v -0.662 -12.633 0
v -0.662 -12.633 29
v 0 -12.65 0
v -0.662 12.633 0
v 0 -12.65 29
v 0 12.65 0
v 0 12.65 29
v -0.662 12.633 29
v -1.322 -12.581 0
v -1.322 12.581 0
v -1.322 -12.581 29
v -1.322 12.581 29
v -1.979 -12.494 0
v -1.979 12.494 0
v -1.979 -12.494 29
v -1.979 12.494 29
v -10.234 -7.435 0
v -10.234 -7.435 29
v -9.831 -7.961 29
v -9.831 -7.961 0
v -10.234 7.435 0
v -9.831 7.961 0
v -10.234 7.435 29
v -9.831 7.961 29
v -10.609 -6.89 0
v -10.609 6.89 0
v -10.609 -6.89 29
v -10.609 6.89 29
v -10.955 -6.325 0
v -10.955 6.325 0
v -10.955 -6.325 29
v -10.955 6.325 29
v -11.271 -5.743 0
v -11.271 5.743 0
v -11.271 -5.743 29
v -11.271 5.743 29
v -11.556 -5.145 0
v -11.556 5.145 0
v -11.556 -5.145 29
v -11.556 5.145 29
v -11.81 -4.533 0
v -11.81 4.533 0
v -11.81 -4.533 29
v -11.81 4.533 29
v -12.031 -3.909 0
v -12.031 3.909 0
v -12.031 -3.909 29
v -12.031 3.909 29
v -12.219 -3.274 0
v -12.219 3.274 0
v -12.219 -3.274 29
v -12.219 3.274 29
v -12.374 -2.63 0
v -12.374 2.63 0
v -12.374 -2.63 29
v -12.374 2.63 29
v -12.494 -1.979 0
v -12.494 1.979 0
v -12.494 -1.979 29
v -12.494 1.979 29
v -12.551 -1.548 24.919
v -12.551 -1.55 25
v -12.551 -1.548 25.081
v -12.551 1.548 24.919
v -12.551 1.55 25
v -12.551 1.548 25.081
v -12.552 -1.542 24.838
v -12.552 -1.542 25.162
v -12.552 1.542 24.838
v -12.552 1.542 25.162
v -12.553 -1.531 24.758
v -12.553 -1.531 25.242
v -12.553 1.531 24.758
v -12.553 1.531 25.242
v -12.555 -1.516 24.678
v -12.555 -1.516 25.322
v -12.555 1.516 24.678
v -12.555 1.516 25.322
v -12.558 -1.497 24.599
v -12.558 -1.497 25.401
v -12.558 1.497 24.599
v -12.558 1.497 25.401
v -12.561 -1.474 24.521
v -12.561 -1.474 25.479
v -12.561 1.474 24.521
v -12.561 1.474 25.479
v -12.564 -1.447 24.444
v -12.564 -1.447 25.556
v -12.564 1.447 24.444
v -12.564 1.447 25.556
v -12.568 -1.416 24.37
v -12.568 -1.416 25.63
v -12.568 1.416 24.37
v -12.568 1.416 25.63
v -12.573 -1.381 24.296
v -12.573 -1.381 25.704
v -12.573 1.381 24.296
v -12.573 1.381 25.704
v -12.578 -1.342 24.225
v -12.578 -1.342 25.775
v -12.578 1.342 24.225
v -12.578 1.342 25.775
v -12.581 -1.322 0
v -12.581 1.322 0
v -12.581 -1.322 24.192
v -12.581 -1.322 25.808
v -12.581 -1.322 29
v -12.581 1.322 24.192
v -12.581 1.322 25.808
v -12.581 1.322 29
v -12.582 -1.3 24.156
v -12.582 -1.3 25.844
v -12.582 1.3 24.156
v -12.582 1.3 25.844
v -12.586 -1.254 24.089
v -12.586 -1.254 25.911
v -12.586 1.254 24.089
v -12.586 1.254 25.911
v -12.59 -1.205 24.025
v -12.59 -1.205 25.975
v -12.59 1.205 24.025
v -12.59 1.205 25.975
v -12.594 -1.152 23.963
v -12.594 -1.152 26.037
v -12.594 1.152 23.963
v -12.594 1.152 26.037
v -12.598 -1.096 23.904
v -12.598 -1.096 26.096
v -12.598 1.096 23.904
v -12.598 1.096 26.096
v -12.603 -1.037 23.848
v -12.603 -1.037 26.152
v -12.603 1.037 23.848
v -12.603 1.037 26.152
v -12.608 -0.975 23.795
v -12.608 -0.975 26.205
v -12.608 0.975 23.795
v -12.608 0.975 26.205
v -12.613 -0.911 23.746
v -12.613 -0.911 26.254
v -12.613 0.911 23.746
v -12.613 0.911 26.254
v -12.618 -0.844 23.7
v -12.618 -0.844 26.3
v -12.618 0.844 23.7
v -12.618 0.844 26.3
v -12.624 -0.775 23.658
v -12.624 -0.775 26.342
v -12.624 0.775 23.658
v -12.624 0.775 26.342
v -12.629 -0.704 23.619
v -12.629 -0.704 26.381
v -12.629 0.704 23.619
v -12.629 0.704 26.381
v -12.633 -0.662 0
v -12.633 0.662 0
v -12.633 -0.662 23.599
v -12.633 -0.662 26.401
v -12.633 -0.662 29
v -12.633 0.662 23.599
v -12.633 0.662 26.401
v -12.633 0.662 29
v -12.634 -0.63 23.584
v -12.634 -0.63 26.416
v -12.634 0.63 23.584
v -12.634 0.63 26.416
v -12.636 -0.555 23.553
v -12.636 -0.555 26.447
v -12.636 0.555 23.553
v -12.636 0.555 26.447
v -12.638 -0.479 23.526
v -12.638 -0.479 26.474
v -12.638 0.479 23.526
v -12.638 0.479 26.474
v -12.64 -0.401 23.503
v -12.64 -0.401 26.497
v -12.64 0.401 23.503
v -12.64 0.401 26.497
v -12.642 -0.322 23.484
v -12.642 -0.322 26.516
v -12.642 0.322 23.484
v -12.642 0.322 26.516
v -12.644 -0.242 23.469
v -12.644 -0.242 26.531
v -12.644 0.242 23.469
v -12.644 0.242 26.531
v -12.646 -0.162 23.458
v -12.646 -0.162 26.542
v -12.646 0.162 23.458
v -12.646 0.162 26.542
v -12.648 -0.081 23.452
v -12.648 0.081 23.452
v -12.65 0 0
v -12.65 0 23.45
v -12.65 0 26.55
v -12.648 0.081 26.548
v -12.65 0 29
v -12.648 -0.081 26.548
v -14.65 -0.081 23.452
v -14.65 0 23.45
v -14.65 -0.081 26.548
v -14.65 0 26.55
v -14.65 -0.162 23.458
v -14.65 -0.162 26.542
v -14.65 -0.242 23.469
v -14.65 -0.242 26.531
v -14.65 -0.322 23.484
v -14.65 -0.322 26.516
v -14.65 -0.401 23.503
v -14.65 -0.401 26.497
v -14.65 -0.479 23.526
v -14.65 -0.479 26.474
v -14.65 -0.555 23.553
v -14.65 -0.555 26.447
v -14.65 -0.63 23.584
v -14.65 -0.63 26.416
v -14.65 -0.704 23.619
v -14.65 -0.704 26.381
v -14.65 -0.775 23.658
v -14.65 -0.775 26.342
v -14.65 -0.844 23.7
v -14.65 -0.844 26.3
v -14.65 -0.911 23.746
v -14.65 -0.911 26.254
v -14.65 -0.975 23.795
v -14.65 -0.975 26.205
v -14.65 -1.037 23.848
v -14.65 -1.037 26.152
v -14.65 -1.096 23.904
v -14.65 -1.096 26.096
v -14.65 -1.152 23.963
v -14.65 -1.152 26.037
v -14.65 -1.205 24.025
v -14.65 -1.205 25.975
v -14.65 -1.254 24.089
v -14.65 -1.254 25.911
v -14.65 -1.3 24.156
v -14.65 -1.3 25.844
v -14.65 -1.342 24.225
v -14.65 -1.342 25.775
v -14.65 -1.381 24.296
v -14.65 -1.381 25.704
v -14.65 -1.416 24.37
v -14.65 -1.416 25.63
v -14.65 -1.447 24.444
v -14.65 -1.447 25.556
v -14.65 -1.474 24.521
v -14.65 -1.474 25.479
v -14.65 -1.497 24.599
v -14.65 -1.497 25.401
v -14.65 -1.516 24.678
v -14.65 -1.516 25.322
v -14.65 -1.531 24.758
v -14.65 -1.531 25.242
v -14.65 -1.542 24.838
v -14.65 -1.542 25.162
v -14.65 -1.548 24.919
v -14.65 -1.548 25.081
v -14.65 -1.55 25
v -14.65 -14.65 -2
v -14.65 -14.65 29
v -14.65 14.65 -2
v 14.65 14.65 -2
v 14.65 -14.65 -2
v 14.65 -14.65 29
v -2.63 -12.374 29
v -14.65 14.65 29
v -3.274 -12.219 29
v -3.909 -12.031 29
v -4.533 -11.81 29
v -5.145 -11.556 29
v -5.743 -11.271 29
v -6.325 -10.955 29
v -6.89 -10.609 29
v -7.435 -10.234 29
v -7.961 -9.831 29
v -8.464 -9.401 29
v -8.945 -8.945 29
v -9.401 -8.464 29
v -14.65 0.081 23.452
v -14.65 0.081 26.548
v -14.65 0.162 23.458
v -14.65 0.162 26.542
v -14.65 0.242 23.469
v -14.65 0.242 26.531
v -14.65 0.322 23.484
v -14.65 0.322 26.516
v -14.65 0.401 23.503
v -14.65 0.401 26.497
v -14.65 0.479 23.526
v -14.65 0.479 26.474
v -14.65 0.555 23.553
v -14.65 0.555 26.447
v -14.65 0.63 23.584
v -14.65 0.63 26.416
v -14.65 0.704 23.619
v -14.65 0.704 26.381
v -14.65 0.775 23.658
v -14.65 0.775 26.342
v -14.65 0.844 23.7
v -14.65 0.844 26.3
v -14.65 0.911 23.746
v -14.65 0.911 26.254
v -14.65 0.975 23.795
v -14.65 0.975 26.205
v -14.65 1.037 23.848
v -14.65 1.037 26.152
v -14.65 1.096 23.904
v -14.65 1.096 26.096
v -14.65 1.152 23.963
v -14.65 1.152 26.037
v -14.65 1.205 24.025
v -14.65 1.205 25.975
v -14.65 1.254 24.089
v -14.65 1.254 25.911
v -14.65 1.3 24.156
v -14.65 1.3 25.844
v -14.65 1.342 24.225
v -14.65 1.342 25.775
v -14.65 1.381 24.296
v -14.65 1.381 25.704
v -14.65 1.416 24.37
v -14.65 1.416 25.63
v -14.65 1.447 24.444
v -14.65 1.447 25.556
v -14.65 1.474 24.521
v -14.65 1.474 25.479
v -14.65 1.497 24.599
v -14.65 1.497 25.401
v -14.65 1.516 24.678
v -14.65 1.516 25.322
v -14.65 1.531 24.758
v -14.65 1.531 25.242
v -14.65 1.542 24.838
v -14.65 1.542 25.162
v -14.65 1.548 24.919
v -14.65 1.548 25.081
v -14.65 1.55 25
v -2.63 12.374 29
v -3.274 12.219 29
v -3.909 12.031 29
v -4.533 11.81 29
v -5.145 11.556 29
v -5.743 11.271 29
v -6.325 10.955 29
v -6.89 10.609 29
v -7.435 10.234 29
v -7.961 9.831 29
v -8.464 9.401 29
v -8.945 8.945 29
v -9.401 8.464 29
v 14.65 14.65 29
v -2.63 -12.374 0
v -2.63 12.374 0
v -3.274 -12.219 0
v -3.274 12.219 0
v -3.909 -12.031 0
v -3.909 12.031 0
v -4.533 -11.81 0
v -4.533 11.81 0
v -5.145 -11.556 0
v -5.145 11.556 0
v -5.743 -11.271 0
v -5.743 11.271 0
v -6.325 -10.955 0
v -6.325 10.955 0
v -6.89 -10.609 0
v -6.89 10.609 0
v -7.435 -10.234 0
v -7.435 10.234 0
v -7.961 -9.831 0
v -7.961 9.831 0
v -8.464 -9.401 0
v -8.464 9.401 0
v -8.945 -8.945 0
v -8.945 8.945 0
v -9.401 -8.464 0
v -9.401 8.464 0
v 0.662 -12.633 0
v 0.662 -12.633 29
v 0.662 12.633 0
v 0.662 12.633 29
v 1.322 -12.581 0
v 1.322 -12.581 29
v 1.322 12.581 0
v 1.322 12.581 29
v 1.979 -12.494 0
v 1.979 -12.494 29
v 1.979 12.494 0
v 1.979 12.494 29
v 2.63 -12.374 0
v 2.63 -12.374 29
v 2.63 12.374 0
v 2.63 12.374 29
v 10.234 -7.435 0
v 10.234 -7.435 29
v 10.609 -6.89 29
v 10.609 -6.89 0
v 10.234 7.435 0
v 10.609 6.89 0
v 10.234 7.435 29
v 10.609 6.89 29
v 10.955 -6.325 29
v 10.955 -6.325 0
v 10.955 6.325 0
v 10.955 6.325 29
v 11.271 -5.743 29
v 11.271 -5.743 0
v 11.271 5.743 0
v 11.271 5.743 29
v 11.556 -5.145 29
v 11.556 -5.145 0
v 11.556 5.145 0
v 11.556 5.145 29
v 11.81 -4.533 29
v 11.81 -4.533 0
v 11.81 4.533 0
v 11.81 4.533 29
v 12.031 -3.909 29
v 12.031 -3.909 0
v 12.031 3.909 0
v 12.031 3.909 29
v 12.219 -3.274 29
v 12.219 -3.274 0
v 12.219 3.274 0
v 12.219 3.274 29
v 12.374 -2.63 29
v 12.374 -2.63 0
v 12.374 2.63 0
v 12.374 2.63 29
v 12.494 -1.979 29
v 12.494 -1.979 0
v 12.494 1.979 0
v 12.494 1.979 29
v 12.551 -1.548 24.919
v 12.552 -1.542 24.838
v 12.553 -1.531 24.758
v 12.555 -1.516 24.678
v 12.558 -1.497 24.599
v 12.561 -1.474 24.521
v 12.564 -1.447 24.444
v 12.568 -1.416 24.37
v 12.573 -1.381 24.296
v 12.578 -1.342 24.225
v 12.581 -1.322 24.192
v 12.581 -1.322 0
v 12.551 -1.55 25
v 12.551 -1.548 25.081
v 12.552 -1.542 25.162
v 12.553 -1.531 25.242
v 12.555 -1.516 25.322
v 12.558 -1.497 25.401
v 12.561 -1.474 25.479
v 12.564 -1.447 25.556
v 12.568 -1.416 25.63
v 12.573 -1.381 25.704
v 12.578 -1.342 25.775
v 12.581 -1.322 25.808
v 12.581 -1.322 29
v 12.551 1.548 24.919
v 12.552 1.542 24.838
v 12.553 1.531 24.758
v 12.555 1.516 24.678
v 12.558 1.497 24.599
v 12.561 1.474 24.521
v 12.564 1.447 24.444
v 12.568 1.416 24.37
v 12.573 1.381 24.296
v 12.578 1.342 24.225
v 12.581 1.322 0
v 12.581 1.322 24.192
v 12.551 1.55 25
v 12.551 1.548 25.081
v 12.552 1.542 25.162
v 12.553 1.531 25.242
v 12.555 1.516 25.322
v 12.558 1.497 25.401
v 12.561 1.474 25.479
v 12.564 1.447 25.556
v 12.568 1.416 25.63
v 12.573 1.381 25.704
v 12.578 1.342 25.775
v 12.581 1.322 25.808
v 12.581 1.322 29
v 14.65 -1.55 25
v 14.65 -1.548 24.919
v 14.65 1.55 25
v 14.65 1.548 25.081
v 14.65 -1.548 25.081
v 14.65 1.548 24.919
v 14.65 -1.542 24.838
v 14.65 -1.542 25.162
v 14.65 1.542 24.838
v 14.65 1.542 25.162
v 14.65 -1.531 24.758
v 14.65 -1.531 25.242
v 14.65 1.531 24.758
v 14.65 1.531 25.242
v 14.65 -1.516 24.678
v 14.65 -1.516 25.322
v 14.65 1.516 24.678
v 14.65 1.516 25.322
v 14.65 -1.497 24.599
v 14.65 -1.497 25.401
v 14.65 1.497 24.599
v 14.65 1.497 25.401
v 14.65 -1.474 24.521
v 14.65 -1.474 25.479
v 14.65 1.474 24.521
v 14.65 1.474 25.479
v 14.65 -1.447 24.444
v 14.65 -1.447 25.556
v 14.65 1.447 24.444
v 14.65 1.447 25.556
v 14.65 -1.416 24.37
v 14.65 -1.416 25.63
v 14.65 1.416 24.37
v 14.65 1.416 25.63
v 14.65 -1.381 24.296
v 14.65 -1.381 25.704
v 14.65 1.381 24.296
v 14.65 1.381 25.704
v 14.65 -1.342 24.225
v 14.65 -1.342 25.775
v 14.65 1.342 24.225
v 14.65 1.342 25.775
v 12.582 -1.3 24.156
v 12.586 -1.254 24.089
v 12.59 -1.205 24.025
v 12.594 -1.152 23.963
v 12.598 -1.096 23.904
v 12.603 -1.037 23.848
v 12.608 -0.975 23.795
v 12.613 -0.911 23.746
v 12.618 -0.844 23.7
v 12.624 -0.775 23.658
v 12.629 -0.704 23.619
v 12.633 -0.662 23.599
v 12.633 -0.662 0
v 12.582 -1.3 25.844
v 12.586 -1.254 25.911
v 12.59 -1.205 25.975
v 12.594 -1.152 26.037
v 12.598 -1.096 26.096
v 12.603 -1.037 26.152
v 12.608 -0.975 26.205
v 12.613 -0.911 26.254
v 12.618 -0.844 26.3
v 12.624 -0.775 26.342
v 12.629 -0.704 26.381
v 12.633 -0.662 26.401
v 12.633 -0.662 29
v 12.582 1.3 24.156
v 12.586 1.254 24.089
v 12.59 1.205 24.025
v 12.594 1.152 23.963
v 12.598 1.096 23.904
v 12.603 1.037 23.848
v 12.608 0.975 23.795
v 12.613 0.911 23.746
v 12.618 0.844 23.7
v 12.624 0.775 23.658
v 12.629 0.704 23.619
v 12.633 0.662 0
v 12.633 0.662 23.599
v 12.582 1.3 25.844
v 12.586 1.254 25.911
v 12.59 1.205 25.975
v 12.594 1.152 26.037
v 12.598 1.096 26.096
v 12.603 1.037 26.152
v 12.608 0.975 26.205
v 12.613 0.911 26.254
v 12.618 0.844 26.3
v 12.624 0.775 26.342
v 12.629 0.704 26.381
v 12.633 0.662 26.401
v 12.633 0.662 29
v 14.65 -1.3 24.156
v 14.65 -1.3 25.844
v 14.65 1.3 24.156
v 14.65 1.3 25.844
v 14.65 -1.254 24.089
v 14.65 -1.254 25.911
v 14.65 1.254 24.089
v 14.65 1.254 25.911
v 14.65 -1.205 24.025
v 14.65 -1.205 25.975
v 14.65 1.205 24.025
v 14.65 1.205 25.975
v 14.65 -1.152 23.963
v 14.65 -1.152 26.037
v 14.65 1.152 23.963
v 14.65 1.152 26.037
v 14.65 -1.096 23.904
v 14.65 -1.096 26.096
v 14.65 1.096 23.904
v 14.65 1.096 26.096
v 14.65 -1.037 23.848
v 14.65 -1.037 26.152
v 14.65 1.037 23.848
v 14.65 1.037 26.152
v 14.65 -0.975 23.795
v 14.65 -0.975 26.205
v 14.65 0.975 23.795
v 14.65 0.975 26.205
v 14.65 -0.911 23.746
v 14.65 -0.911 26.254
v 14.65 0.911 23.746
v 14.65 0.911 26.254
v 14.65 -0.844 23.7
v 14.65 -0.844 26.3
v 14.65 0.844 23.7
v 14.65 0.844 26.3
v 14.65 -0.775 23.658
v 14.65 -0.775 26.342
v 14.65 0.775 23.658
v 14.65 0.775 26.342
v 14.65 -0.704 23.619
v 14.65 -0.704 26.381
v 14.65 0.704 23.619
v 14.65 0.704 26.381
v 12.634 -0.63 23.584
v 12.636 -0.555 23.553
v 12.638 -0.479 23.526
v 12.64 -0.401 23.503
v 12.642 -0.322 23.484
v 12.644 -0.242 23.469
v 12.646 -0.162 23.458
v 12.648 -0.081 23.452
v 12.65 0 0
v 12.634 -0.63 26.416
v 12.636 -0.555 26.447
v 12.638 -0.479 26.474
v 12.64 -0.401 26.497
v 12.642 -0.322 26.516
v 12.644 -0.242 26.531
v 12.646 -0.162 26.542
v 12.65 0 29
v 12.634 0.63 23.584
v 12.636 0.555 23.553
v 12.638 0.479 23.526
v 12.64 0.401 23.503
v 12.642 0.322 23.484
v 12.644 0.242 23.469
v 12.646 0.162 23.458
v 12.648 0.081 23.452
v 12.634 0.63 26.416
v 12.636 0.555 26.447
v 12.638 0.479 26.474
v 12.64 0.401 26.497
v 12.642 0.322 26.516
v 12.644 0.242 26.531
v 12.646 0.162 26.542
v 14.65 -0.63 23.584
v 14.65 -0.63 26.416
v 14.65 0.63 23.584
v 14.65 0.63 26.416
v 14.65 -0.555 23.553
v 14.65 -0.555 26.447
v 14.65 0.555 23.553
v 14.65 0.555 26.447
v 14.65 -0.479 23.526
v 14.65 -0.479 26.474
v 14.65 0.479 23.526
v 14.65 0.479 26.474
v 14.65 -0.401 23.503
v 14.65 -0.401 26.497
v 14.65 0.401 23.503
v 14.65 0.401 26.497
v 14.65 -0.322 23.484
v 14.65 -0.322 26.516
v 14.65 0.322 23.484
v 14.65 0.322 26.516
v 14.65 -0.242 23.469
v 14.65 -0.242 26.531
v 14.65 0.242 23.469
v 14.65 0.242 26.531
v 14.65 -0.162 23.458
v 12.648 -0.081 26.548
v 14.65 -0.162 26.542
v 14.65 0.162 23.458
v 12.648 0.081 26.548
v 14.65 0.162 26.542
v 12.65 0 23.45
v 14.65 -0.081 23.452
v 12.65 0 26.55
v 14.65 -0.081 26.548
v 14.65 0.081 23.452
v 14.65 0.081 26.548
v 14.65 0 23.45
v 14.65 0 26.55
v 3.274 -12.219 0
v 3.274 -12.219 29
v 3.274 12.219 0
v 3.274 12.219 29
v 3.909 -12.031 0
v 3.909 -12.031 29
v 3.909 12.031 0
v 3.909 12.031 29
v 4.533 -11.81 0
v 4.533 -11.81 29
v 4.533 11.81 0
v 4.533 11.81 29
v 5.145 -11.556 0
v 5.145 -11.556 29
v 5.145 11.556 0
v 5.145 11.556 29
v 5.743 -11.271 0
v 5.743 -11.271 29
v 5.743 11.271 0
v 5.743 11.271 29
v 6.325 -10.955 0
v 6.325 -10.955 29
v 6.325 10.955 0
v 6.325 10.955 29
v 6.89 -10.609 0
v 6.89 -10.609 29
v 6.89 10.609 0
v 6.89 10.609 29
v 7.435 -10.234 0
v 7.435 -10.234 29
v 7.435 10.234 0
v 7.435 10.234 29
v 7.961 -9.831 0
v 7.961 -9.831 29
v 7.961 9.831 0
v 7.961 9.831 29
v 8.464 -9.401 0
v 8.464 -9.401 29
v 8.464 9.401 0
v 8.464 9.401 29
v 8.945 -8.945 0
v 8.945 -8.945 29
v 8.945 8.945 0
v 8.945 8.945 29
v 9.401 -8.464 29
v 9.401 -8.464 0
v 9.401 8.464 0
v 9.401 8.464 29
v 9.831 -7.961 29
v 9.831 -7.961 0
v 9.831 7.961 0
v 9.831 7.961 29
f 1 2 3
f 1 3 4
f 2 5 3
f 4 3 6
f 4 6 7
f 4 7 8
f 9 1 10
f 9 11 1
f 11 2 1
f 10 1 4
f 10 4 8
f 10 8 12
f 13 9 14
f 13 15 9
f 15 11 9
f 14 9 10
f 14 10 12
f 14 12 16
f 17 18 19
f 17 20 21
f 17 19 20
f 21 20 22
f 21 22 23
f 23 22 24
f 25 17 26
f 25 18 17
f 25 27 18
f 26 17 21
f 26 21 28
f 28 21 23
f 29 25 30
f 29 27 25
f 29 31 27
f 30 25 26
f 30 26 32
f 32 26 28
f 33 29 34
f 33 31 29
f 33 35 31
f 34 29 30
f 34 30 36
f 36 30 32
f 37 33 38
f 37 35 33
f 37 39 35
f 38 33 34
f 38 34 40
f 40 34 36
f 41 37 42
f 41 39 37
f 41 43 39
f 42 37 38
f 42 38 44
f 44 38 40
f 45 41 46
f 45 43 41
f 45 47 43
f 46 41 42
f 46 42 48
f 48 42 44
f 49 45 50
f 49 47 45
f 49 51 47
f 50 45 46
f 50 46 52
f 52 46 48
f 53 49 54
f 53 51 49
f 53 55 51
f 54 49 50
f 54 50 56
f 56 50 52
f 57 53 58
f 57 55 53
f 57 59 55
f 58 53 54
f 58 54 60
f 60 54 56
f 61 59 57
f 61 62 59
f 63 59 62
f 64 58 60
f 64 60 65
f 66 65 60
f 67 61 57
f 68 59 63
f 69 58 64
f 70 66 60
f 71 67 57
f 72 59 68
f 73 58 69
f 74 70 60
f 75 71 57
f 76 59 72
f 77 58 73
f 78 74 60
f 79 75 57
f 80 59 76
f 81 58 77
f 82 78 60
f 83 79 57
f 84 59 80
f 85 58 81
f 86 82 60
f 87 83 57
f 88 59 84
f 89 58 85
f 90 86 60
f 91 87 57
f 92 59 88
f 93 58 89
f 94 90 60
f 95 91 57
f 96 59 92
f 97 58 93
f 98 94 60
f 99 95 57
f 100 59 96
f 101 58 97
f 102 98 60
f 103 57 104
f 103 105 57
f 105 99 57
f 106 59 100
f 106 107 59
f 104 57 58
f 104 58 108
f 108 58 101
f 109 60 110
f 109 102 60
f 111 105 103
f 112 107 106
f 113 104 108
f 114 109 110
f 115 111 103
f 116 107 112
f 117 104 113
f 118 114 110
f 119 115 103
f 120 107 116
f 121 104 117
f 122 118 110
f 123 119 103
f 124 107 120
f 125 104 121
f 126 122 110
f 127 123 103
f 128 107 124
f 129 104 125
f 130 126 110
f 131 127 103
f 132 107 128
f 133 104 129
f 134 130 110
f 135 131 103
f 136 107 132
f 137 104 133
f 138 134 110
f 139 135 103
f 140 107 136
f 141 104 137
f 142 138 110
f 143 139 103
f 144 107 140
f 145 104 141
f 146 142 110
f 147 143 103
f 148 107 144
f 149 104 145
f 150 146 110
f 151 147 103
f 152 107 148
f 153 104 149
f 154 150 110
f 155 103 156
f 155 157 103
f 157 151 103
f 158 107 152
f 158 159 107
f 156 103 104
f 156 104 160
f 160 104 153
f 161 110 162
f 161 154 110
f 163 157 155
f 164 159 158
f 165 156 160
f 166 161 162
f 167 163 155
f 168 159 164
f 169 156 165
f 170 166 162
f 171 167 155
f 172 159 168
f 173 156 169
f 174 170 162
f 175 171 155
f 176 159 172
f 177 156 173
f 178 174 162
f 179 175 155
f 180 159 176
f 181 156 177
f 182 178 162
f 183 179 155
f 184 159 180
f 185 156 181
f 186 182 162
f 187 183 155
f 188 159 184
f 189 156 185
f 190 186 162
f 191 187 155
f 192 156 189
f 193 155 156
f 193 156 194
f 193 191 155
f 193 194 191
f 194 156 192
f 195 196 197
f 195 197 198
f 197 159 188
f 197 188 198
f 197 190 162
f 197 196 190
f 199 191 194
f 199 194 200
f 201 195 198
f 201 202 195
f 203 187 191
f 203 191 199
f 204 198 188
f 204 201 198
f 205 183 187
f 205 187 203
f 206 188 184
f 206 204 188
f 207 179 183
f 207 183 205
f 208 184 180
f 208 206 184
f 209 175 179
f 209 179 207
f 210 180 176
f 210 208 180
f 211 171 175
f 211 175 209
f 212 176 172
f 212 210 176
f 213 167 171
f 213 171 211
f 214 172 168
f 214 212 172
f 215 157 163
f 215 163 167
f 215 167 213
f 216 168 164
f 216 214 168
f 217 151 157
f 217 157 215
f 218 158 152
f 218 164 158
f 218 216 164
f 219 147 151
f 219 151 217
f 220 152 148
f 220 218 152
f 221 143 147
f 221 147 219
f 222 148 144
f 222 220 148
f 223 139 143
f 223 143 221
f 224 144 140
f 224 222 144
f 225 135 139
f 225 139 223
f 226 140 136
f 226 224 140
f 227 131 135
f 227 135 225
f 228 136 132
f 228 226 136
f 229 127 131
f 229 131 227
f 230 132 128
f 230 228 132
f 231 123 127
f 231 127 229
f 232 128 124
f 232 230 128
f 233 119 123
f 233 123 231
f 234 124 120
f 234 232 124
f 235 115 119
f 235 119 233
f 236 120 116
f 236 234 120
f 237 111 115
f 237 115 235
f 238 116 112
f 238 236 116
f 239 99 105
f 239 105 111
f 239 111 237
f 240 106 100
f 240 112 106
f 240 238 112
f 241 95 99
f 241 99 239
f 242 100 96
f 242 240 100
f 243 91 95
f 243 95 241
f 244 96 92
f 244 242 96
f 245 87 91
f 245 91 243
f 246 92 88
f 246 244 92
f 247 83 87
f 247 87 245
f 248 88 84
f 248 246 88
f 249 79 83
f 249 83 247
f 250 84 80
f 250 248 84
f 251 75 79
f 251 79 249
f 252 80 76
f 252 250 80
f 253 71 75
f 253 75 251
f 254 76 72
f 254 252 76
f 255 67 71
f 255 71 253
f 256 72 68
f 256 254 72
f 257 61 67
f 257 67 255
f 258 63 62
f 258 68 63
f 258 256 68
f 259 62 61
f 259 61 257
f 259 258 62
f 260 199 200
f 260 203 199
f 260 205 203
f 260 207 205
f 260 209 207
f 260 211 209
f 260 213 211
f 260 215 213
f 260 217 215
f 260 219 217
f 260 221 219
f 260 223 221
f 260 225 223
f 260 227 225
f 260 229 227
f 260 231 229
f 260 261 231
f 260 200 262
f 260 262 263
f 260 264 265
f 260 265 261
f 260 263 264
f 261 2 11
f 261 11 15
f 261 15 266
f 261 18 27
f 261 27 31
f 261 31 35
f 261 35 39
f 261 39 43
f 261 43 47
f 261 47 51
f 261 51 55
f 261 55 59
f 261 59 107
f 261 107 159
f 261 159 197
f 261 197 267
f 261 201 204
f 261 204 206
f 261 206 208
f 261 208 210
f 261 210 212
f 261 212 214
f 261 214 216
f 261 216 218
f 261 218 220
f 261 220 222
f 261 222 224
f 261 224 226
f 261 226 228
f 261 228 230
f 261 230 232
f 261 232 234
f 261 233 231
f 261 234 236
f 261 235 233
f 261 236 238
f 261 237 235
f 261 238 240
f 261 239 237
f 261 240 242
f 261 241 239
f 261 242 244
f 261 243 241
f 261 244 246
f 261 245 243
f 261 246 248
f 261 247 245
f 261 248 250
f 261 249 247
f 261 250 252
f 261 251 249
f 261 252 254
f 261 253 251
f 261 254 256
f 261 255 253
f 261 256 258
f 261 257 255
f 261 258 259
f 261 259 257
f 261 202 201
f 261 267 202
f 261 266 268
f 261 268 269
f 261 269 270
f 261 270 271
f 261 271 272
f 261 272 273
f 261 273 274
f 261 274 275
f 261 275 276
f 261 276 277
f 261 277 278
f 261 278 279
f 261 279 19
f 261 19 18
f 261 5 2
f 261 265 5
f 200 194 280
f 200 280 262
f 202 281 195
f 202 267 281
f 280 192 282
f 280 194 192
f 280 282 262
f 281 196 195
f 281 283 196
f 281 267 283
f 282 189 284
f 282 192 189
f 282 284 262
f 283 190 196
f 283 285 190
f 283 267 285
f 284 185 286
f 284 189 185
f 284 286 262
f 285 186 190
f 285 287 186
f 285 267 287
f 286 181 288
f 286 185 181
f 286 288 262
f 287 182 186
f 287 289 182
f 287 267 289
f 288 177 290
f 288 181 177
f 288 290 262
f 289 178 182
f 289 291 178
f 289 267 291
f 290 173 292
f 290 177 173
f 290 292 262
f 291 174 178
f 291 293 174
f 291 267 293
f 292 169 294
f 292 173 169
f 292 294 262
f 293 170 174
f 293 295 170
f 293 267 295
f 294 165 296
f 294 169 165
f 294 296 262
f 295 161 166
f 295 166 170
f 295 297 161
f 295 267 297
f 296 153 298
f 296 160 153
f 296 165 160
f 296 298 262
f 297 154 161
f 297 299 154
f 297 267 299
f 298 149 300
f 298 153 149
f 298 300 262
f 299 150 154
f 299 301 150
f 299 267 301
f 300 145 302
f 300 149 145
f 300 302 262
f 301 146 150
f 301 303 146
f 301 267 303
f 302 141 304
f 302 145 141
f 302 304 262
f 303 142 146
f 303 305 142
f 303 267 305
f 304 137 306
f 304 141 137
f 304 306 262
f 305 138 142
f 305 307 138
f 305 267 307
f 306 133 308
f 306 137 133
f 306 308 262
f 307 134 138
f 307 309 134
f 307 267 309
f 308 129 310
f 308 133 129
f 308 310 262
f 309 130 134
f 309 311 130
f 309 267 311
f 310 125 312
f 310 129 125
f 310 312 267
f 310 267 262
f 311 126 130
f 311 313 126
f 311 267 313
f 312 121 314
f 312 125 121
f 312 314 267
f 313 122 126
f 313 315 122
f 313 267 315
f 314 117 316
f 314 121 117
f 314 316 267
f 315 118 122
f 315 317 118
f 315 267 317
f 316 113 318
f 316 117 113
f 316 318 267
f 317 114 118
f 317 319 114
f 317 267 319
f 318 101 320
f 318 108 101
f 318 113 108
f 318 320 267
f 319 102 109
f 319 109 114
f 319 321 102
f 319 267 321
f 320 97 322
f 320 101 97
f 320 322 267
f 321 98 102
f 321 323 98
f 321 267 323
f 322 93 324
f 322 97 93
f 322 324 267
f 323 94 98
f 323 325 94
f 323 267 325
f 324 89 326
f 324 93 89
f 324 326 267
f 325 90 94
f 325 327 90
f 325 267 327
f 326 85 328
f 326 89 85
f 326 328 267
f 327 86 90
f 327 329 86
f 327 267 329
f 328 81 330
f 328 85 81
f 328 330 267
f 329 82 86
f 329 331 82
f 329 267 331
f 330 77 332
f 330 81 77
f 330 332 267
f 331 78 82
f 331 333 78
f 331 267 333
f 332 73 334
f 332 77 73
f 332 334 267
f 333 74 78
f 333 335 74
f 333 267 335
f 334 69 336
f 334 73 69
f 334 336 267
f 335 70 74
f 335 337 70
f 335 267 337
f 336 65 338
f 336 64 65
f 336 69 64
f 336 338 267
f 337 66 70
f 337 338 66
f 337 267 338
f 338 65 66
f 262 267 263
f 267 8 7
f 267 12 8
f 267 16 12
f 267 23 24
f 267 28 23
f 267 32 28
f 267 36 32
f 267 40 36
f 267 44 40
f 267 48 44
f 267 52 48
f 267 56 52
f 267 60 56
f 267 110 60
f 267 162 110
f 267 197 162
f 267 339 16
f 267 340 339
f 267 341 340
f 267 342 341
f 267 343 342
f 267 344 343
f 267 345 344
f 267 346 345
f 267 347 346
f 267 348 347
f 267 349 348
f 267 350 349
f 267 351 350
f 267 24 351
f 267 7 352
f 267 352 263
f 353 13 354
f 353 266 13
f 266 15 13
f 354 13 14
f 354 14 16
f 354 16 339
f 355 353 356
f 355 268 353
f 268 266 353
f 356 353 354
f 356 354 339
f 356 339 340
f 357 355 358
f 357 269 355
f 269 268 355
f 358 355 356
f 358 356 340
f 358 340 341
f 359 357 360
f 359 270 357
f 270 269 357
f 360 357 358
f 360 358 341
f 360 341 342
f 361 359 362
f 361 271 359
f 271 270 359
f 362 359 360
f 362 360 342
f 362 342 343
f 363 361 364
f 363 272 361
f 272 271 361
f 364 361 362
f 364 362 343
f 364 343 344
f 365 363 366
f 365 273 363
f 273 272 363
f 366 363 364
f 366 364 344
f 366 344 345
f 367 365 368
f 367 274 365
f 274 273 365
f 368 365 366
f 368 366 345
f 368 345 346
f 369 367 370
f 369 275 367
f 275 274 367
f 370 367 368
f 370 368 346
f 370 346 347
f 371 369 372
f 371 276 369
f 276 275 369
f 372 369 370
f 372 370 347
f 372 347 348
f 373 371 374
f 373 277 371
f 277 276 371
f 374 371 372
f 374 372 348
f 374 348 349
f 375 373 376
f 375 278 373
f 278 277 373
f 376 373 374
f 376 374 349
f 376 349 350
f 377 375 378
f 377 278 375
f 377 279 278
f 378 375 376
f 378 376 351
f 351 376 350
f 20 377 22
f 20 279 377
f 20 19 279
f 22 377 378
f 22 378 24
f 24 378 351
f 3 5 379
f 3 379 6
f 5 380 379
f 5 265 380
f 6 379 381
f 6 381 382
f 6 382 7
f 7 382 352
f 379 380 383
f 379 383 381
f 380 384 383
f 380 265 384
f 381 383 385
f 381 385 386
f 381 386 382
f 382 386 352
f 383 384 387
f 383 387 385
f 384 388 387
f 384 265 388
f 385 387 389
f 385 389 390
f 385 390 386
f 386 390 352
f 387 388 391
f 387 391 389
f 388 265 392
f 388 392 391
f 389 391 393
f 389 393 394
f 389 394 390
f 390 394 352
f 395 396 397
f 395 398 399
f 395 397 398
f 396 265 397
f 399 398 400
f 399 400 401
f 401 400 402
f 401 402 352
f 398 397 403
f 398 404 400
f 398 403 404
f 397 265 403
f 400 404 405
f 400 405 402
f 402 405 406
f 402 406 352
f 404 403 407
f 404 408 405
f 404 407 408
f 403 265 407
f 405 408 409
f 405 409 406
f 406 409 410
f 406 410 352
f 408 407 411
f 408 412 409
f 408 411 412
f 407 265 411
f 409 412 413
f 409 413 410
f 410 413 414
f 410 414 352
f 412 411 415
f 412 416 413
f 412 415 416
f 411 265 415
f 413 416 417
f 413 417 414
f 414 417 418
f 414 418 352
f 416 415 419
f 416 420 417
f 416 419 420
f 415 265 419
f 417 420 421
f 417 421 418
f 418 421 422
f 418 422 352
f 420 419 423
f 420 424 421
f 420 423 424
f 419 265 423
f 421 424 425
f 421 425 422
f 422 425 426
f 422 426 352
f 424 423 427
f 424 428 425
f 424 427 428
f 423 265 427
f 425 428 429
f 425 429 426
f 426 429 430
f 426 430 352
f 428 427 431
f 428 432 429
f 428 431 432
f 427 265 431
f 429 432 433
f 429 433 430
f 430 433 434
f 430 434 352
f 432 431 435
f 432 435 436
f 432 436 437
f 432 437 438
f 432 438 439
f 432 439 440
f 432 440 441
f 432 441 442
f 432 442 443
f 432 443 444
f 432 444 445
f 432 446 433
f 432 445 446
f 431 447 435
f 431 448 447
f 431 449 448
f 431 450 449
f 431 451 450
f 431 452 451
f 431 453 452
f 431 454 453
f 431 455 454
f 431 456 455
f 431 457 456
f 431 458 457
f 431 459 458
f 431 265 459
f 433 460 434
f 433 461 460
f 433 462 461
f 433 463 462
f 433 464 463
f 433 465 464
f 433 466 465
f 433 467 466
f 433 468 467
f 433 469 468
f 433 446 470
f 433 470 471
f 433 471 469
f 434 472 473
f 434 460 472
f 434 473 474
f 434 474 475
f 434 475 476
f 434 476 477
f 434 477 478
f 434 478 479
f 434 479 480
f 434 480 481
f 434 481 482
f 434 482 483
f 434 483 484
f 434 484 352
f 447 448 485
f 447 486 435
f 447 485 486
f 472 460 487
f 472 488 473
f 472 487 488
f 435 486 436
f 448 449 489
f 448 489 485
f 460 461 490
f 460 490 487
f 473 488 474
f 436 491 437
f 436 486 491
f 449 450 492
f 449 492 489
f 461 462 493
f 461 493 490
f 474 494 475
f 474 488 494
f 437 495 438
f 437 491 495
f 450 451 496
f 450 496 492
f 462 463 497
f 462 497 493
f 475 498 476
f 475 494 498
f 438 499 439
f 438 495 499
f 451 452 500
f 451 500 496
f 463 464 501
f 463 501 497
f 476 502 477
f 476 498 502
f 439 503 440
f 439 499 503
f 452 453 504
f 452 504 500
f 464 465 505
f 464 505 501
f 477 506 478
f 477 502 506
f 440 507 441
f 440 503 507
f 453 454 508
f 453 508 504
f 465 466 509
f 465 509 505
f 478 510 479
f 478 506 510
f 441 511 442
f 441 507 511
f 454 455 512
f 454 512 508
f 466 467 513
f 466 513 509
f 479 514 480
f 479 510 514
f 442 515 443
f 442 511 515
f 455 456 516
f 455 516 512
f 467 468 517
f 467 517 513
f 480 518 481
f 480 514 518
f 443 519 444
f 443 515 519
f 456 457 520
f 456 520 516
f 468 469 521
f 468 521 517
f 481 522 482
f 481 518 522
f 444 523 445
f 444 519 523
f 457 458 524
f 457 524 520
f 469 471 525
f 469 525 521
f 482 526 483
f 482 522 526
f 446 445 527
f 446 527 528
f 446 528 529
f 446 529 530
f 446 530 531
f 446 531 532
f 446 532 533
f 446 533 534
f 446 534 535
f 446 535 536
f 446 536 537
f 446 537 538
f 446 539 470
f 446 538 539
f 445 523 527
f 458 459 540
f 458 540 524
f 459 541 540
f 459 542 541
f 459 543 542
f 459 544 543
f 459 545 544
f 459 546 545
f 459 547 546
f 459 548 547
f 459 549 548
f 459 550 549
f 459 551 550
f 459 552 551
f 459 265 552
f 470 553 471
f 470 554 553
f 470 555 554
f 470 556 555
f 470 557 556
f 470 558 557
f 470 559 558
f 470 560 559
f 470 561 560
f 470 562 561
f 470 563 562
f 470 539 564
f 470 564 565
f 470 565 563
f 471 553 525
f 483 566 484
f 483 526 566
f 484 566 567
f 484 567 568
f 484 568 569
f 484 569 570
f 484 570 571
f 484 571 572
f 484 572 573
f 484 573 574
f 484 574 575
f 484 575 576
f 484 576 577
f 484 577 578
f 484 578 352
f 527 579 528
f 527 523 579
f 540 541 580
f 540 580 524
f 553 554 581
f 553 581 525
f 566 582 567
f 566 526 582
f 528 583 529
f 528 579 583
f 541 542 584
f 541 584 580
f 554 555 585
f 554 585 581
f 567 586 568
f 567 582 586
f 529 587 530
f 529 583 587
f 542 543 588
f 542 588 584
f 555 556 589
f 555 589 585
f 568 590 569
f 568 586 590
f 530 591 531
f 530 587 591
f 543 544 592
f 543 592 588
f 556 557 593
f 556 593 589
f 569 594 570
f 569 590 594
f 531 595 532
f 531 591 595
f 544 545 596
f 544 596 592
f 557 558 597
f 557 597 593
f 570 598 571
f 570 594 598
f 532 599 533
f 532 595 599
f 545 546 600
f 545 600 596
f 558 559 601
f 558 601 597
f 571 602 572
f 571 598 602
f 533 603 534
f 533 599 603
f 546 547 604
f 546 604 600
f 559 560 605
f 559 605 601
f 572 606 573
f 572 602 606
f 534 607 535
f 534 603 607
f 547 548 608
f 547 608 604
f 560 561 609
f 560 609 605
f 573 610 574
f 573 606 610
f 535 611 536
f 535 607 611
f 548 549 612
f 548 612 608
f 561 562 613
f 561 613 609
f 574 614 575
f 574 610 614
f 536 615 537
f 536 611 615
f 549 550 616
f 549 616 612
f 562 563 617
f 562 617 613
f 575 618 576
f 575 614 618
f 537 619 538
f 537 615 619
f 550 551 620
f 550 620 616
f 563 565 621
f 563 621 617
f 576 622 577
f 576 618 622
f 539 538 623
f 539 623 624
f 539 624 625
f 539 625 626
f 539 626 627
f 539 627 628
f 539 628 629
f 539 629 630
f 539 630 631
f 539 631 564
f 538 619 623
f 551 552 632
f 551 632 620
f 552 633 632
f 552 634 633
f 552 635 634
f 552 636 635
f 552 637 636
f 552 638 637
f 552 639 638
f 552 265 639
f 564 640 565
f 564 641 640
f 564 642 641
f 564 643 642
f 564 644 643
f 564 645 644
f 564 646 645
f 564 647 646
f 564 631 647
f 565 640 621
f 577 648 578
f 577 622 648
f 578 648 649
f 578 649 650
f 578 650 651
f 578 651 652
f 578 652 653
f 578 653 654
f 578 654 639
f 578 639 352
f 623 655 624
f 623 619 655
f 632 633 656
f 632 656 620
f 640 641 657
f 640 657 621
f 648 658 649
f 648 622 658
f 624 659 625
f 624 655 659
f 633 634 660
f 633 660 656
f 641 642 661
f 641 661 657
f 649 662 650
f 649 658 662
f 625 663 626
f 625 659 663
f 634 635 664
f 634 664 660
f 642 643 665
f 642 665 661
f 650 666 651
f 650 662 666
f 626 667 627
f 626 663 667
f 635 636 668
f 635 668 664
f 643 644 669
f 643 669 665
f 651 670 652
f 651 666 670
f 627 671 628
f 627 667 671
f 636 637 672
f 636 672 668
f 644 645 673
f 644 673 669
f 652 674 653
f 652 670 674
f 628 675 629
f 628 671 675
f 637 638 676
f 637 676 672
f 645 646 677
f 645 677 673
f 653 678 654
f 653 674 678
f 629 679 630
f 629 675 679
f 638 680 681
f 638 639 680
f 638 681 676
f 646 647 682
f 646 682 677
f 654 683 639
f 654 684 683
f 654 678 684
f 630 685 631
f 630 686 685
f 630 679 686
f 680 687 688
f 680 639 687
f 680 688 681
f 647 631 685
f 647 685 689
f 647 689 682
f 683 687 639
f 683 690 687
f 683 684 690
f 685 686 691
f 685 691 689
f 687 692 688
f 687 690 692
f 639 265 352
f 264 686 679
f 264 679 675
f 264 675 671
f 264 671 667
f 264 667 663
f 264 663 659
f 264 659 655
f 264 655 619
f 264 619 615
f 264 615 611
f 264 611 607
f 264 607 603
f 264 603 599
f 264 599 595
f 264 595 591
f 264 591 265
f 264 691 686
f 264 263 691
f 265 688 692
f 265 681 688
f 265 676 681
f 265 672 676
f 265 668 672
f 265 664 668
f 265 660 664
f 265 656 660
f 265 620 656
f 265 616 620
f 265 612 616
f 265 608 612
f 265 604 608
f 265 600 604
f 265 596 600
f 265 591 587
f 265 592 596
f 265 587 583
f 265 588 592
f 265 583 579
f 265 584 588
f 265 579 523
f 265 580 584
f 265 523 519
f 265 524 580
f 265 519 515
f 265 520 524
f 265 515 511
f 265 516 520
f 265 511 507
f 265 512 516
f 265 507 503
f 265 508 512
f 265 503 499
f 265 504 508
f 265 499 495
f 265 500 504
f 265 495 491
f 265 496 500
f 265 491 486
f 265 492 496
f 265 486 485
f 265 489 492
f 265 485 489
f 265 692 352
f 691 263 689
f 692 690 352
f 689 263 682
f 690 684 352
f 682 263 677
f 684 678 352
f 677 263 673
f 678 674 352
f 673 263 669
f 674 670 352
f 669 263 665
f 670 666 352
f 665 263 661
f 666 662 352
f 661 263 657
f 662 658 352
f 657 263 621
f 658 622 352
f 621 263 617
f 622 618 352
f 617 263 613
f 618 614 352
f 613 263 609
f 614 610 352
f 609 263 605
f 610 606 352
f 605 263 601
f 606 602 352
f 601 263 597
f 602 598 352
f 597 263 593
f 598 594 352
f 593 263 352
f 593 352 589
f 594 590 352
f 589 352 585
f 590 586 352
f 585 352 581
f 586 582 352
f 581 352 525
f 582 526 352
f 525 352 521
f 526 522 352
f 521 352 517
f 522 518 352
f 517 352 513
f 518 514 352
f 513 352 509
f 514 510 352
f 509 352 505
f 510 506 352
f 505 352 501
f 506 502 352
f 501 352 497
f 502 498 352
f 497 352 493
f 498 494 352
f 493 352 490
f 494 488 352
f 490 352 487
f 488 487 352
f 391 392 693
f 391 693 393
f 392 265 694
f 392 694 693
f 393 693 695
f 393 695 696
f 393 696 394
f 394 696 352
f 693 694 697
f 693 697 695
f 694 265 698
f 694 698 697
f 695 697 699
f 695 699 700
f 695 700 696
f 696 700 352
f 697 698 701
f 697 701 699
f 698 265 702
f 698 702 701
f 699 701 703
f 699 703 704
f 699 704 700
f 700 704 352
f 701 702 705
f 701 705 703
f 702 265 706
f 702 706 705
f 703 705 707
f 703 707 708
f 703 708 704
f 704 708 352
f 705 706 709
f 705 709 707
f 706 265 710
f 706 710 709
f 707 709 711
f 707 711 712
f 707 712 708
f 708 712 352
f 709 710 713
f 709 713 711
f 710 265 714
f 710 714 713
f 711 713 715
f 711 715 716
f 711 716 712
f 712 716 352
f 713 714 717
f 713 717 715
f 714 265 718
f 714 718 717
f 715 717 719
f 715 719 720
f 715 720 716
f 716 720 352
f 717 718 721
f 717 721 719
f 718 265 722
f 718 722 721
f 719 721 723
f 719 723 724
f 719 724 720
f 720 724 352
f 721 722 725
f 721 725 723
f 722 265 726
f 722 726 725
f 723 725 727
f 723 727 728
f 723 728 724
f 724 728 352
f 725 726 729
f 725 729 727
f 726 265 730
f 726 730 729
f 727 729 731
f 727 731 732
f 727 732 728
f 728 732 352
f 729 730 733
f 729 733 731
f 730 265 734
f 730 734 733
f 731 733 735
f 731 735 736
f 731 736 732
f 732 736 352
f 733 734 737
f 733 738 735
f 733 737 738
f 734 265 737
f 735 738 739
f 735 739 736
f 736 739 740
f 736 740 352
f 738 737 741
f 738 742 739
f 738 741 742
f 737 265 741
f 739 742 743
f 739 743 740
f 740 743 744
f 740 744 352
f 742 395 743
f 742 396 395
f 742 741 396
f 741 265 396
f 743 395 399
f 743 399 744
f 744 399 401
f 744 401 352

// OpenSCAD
d=25.3;
screw_p=25;
screw_d=3.1;

add=2;
l=screw_p+3*add;

difference()
{
    translate([0,0,l/2-add])
        cube([d+2*add,d+2*add,l],center=true);   
    cylinder(d=d,h=350,$fn=120);
    translate([0,0,screw_p])
        rotate([0,90,0])
            cylinder(d=screw_d,h=2*d,$fn=120,center=true);
}
